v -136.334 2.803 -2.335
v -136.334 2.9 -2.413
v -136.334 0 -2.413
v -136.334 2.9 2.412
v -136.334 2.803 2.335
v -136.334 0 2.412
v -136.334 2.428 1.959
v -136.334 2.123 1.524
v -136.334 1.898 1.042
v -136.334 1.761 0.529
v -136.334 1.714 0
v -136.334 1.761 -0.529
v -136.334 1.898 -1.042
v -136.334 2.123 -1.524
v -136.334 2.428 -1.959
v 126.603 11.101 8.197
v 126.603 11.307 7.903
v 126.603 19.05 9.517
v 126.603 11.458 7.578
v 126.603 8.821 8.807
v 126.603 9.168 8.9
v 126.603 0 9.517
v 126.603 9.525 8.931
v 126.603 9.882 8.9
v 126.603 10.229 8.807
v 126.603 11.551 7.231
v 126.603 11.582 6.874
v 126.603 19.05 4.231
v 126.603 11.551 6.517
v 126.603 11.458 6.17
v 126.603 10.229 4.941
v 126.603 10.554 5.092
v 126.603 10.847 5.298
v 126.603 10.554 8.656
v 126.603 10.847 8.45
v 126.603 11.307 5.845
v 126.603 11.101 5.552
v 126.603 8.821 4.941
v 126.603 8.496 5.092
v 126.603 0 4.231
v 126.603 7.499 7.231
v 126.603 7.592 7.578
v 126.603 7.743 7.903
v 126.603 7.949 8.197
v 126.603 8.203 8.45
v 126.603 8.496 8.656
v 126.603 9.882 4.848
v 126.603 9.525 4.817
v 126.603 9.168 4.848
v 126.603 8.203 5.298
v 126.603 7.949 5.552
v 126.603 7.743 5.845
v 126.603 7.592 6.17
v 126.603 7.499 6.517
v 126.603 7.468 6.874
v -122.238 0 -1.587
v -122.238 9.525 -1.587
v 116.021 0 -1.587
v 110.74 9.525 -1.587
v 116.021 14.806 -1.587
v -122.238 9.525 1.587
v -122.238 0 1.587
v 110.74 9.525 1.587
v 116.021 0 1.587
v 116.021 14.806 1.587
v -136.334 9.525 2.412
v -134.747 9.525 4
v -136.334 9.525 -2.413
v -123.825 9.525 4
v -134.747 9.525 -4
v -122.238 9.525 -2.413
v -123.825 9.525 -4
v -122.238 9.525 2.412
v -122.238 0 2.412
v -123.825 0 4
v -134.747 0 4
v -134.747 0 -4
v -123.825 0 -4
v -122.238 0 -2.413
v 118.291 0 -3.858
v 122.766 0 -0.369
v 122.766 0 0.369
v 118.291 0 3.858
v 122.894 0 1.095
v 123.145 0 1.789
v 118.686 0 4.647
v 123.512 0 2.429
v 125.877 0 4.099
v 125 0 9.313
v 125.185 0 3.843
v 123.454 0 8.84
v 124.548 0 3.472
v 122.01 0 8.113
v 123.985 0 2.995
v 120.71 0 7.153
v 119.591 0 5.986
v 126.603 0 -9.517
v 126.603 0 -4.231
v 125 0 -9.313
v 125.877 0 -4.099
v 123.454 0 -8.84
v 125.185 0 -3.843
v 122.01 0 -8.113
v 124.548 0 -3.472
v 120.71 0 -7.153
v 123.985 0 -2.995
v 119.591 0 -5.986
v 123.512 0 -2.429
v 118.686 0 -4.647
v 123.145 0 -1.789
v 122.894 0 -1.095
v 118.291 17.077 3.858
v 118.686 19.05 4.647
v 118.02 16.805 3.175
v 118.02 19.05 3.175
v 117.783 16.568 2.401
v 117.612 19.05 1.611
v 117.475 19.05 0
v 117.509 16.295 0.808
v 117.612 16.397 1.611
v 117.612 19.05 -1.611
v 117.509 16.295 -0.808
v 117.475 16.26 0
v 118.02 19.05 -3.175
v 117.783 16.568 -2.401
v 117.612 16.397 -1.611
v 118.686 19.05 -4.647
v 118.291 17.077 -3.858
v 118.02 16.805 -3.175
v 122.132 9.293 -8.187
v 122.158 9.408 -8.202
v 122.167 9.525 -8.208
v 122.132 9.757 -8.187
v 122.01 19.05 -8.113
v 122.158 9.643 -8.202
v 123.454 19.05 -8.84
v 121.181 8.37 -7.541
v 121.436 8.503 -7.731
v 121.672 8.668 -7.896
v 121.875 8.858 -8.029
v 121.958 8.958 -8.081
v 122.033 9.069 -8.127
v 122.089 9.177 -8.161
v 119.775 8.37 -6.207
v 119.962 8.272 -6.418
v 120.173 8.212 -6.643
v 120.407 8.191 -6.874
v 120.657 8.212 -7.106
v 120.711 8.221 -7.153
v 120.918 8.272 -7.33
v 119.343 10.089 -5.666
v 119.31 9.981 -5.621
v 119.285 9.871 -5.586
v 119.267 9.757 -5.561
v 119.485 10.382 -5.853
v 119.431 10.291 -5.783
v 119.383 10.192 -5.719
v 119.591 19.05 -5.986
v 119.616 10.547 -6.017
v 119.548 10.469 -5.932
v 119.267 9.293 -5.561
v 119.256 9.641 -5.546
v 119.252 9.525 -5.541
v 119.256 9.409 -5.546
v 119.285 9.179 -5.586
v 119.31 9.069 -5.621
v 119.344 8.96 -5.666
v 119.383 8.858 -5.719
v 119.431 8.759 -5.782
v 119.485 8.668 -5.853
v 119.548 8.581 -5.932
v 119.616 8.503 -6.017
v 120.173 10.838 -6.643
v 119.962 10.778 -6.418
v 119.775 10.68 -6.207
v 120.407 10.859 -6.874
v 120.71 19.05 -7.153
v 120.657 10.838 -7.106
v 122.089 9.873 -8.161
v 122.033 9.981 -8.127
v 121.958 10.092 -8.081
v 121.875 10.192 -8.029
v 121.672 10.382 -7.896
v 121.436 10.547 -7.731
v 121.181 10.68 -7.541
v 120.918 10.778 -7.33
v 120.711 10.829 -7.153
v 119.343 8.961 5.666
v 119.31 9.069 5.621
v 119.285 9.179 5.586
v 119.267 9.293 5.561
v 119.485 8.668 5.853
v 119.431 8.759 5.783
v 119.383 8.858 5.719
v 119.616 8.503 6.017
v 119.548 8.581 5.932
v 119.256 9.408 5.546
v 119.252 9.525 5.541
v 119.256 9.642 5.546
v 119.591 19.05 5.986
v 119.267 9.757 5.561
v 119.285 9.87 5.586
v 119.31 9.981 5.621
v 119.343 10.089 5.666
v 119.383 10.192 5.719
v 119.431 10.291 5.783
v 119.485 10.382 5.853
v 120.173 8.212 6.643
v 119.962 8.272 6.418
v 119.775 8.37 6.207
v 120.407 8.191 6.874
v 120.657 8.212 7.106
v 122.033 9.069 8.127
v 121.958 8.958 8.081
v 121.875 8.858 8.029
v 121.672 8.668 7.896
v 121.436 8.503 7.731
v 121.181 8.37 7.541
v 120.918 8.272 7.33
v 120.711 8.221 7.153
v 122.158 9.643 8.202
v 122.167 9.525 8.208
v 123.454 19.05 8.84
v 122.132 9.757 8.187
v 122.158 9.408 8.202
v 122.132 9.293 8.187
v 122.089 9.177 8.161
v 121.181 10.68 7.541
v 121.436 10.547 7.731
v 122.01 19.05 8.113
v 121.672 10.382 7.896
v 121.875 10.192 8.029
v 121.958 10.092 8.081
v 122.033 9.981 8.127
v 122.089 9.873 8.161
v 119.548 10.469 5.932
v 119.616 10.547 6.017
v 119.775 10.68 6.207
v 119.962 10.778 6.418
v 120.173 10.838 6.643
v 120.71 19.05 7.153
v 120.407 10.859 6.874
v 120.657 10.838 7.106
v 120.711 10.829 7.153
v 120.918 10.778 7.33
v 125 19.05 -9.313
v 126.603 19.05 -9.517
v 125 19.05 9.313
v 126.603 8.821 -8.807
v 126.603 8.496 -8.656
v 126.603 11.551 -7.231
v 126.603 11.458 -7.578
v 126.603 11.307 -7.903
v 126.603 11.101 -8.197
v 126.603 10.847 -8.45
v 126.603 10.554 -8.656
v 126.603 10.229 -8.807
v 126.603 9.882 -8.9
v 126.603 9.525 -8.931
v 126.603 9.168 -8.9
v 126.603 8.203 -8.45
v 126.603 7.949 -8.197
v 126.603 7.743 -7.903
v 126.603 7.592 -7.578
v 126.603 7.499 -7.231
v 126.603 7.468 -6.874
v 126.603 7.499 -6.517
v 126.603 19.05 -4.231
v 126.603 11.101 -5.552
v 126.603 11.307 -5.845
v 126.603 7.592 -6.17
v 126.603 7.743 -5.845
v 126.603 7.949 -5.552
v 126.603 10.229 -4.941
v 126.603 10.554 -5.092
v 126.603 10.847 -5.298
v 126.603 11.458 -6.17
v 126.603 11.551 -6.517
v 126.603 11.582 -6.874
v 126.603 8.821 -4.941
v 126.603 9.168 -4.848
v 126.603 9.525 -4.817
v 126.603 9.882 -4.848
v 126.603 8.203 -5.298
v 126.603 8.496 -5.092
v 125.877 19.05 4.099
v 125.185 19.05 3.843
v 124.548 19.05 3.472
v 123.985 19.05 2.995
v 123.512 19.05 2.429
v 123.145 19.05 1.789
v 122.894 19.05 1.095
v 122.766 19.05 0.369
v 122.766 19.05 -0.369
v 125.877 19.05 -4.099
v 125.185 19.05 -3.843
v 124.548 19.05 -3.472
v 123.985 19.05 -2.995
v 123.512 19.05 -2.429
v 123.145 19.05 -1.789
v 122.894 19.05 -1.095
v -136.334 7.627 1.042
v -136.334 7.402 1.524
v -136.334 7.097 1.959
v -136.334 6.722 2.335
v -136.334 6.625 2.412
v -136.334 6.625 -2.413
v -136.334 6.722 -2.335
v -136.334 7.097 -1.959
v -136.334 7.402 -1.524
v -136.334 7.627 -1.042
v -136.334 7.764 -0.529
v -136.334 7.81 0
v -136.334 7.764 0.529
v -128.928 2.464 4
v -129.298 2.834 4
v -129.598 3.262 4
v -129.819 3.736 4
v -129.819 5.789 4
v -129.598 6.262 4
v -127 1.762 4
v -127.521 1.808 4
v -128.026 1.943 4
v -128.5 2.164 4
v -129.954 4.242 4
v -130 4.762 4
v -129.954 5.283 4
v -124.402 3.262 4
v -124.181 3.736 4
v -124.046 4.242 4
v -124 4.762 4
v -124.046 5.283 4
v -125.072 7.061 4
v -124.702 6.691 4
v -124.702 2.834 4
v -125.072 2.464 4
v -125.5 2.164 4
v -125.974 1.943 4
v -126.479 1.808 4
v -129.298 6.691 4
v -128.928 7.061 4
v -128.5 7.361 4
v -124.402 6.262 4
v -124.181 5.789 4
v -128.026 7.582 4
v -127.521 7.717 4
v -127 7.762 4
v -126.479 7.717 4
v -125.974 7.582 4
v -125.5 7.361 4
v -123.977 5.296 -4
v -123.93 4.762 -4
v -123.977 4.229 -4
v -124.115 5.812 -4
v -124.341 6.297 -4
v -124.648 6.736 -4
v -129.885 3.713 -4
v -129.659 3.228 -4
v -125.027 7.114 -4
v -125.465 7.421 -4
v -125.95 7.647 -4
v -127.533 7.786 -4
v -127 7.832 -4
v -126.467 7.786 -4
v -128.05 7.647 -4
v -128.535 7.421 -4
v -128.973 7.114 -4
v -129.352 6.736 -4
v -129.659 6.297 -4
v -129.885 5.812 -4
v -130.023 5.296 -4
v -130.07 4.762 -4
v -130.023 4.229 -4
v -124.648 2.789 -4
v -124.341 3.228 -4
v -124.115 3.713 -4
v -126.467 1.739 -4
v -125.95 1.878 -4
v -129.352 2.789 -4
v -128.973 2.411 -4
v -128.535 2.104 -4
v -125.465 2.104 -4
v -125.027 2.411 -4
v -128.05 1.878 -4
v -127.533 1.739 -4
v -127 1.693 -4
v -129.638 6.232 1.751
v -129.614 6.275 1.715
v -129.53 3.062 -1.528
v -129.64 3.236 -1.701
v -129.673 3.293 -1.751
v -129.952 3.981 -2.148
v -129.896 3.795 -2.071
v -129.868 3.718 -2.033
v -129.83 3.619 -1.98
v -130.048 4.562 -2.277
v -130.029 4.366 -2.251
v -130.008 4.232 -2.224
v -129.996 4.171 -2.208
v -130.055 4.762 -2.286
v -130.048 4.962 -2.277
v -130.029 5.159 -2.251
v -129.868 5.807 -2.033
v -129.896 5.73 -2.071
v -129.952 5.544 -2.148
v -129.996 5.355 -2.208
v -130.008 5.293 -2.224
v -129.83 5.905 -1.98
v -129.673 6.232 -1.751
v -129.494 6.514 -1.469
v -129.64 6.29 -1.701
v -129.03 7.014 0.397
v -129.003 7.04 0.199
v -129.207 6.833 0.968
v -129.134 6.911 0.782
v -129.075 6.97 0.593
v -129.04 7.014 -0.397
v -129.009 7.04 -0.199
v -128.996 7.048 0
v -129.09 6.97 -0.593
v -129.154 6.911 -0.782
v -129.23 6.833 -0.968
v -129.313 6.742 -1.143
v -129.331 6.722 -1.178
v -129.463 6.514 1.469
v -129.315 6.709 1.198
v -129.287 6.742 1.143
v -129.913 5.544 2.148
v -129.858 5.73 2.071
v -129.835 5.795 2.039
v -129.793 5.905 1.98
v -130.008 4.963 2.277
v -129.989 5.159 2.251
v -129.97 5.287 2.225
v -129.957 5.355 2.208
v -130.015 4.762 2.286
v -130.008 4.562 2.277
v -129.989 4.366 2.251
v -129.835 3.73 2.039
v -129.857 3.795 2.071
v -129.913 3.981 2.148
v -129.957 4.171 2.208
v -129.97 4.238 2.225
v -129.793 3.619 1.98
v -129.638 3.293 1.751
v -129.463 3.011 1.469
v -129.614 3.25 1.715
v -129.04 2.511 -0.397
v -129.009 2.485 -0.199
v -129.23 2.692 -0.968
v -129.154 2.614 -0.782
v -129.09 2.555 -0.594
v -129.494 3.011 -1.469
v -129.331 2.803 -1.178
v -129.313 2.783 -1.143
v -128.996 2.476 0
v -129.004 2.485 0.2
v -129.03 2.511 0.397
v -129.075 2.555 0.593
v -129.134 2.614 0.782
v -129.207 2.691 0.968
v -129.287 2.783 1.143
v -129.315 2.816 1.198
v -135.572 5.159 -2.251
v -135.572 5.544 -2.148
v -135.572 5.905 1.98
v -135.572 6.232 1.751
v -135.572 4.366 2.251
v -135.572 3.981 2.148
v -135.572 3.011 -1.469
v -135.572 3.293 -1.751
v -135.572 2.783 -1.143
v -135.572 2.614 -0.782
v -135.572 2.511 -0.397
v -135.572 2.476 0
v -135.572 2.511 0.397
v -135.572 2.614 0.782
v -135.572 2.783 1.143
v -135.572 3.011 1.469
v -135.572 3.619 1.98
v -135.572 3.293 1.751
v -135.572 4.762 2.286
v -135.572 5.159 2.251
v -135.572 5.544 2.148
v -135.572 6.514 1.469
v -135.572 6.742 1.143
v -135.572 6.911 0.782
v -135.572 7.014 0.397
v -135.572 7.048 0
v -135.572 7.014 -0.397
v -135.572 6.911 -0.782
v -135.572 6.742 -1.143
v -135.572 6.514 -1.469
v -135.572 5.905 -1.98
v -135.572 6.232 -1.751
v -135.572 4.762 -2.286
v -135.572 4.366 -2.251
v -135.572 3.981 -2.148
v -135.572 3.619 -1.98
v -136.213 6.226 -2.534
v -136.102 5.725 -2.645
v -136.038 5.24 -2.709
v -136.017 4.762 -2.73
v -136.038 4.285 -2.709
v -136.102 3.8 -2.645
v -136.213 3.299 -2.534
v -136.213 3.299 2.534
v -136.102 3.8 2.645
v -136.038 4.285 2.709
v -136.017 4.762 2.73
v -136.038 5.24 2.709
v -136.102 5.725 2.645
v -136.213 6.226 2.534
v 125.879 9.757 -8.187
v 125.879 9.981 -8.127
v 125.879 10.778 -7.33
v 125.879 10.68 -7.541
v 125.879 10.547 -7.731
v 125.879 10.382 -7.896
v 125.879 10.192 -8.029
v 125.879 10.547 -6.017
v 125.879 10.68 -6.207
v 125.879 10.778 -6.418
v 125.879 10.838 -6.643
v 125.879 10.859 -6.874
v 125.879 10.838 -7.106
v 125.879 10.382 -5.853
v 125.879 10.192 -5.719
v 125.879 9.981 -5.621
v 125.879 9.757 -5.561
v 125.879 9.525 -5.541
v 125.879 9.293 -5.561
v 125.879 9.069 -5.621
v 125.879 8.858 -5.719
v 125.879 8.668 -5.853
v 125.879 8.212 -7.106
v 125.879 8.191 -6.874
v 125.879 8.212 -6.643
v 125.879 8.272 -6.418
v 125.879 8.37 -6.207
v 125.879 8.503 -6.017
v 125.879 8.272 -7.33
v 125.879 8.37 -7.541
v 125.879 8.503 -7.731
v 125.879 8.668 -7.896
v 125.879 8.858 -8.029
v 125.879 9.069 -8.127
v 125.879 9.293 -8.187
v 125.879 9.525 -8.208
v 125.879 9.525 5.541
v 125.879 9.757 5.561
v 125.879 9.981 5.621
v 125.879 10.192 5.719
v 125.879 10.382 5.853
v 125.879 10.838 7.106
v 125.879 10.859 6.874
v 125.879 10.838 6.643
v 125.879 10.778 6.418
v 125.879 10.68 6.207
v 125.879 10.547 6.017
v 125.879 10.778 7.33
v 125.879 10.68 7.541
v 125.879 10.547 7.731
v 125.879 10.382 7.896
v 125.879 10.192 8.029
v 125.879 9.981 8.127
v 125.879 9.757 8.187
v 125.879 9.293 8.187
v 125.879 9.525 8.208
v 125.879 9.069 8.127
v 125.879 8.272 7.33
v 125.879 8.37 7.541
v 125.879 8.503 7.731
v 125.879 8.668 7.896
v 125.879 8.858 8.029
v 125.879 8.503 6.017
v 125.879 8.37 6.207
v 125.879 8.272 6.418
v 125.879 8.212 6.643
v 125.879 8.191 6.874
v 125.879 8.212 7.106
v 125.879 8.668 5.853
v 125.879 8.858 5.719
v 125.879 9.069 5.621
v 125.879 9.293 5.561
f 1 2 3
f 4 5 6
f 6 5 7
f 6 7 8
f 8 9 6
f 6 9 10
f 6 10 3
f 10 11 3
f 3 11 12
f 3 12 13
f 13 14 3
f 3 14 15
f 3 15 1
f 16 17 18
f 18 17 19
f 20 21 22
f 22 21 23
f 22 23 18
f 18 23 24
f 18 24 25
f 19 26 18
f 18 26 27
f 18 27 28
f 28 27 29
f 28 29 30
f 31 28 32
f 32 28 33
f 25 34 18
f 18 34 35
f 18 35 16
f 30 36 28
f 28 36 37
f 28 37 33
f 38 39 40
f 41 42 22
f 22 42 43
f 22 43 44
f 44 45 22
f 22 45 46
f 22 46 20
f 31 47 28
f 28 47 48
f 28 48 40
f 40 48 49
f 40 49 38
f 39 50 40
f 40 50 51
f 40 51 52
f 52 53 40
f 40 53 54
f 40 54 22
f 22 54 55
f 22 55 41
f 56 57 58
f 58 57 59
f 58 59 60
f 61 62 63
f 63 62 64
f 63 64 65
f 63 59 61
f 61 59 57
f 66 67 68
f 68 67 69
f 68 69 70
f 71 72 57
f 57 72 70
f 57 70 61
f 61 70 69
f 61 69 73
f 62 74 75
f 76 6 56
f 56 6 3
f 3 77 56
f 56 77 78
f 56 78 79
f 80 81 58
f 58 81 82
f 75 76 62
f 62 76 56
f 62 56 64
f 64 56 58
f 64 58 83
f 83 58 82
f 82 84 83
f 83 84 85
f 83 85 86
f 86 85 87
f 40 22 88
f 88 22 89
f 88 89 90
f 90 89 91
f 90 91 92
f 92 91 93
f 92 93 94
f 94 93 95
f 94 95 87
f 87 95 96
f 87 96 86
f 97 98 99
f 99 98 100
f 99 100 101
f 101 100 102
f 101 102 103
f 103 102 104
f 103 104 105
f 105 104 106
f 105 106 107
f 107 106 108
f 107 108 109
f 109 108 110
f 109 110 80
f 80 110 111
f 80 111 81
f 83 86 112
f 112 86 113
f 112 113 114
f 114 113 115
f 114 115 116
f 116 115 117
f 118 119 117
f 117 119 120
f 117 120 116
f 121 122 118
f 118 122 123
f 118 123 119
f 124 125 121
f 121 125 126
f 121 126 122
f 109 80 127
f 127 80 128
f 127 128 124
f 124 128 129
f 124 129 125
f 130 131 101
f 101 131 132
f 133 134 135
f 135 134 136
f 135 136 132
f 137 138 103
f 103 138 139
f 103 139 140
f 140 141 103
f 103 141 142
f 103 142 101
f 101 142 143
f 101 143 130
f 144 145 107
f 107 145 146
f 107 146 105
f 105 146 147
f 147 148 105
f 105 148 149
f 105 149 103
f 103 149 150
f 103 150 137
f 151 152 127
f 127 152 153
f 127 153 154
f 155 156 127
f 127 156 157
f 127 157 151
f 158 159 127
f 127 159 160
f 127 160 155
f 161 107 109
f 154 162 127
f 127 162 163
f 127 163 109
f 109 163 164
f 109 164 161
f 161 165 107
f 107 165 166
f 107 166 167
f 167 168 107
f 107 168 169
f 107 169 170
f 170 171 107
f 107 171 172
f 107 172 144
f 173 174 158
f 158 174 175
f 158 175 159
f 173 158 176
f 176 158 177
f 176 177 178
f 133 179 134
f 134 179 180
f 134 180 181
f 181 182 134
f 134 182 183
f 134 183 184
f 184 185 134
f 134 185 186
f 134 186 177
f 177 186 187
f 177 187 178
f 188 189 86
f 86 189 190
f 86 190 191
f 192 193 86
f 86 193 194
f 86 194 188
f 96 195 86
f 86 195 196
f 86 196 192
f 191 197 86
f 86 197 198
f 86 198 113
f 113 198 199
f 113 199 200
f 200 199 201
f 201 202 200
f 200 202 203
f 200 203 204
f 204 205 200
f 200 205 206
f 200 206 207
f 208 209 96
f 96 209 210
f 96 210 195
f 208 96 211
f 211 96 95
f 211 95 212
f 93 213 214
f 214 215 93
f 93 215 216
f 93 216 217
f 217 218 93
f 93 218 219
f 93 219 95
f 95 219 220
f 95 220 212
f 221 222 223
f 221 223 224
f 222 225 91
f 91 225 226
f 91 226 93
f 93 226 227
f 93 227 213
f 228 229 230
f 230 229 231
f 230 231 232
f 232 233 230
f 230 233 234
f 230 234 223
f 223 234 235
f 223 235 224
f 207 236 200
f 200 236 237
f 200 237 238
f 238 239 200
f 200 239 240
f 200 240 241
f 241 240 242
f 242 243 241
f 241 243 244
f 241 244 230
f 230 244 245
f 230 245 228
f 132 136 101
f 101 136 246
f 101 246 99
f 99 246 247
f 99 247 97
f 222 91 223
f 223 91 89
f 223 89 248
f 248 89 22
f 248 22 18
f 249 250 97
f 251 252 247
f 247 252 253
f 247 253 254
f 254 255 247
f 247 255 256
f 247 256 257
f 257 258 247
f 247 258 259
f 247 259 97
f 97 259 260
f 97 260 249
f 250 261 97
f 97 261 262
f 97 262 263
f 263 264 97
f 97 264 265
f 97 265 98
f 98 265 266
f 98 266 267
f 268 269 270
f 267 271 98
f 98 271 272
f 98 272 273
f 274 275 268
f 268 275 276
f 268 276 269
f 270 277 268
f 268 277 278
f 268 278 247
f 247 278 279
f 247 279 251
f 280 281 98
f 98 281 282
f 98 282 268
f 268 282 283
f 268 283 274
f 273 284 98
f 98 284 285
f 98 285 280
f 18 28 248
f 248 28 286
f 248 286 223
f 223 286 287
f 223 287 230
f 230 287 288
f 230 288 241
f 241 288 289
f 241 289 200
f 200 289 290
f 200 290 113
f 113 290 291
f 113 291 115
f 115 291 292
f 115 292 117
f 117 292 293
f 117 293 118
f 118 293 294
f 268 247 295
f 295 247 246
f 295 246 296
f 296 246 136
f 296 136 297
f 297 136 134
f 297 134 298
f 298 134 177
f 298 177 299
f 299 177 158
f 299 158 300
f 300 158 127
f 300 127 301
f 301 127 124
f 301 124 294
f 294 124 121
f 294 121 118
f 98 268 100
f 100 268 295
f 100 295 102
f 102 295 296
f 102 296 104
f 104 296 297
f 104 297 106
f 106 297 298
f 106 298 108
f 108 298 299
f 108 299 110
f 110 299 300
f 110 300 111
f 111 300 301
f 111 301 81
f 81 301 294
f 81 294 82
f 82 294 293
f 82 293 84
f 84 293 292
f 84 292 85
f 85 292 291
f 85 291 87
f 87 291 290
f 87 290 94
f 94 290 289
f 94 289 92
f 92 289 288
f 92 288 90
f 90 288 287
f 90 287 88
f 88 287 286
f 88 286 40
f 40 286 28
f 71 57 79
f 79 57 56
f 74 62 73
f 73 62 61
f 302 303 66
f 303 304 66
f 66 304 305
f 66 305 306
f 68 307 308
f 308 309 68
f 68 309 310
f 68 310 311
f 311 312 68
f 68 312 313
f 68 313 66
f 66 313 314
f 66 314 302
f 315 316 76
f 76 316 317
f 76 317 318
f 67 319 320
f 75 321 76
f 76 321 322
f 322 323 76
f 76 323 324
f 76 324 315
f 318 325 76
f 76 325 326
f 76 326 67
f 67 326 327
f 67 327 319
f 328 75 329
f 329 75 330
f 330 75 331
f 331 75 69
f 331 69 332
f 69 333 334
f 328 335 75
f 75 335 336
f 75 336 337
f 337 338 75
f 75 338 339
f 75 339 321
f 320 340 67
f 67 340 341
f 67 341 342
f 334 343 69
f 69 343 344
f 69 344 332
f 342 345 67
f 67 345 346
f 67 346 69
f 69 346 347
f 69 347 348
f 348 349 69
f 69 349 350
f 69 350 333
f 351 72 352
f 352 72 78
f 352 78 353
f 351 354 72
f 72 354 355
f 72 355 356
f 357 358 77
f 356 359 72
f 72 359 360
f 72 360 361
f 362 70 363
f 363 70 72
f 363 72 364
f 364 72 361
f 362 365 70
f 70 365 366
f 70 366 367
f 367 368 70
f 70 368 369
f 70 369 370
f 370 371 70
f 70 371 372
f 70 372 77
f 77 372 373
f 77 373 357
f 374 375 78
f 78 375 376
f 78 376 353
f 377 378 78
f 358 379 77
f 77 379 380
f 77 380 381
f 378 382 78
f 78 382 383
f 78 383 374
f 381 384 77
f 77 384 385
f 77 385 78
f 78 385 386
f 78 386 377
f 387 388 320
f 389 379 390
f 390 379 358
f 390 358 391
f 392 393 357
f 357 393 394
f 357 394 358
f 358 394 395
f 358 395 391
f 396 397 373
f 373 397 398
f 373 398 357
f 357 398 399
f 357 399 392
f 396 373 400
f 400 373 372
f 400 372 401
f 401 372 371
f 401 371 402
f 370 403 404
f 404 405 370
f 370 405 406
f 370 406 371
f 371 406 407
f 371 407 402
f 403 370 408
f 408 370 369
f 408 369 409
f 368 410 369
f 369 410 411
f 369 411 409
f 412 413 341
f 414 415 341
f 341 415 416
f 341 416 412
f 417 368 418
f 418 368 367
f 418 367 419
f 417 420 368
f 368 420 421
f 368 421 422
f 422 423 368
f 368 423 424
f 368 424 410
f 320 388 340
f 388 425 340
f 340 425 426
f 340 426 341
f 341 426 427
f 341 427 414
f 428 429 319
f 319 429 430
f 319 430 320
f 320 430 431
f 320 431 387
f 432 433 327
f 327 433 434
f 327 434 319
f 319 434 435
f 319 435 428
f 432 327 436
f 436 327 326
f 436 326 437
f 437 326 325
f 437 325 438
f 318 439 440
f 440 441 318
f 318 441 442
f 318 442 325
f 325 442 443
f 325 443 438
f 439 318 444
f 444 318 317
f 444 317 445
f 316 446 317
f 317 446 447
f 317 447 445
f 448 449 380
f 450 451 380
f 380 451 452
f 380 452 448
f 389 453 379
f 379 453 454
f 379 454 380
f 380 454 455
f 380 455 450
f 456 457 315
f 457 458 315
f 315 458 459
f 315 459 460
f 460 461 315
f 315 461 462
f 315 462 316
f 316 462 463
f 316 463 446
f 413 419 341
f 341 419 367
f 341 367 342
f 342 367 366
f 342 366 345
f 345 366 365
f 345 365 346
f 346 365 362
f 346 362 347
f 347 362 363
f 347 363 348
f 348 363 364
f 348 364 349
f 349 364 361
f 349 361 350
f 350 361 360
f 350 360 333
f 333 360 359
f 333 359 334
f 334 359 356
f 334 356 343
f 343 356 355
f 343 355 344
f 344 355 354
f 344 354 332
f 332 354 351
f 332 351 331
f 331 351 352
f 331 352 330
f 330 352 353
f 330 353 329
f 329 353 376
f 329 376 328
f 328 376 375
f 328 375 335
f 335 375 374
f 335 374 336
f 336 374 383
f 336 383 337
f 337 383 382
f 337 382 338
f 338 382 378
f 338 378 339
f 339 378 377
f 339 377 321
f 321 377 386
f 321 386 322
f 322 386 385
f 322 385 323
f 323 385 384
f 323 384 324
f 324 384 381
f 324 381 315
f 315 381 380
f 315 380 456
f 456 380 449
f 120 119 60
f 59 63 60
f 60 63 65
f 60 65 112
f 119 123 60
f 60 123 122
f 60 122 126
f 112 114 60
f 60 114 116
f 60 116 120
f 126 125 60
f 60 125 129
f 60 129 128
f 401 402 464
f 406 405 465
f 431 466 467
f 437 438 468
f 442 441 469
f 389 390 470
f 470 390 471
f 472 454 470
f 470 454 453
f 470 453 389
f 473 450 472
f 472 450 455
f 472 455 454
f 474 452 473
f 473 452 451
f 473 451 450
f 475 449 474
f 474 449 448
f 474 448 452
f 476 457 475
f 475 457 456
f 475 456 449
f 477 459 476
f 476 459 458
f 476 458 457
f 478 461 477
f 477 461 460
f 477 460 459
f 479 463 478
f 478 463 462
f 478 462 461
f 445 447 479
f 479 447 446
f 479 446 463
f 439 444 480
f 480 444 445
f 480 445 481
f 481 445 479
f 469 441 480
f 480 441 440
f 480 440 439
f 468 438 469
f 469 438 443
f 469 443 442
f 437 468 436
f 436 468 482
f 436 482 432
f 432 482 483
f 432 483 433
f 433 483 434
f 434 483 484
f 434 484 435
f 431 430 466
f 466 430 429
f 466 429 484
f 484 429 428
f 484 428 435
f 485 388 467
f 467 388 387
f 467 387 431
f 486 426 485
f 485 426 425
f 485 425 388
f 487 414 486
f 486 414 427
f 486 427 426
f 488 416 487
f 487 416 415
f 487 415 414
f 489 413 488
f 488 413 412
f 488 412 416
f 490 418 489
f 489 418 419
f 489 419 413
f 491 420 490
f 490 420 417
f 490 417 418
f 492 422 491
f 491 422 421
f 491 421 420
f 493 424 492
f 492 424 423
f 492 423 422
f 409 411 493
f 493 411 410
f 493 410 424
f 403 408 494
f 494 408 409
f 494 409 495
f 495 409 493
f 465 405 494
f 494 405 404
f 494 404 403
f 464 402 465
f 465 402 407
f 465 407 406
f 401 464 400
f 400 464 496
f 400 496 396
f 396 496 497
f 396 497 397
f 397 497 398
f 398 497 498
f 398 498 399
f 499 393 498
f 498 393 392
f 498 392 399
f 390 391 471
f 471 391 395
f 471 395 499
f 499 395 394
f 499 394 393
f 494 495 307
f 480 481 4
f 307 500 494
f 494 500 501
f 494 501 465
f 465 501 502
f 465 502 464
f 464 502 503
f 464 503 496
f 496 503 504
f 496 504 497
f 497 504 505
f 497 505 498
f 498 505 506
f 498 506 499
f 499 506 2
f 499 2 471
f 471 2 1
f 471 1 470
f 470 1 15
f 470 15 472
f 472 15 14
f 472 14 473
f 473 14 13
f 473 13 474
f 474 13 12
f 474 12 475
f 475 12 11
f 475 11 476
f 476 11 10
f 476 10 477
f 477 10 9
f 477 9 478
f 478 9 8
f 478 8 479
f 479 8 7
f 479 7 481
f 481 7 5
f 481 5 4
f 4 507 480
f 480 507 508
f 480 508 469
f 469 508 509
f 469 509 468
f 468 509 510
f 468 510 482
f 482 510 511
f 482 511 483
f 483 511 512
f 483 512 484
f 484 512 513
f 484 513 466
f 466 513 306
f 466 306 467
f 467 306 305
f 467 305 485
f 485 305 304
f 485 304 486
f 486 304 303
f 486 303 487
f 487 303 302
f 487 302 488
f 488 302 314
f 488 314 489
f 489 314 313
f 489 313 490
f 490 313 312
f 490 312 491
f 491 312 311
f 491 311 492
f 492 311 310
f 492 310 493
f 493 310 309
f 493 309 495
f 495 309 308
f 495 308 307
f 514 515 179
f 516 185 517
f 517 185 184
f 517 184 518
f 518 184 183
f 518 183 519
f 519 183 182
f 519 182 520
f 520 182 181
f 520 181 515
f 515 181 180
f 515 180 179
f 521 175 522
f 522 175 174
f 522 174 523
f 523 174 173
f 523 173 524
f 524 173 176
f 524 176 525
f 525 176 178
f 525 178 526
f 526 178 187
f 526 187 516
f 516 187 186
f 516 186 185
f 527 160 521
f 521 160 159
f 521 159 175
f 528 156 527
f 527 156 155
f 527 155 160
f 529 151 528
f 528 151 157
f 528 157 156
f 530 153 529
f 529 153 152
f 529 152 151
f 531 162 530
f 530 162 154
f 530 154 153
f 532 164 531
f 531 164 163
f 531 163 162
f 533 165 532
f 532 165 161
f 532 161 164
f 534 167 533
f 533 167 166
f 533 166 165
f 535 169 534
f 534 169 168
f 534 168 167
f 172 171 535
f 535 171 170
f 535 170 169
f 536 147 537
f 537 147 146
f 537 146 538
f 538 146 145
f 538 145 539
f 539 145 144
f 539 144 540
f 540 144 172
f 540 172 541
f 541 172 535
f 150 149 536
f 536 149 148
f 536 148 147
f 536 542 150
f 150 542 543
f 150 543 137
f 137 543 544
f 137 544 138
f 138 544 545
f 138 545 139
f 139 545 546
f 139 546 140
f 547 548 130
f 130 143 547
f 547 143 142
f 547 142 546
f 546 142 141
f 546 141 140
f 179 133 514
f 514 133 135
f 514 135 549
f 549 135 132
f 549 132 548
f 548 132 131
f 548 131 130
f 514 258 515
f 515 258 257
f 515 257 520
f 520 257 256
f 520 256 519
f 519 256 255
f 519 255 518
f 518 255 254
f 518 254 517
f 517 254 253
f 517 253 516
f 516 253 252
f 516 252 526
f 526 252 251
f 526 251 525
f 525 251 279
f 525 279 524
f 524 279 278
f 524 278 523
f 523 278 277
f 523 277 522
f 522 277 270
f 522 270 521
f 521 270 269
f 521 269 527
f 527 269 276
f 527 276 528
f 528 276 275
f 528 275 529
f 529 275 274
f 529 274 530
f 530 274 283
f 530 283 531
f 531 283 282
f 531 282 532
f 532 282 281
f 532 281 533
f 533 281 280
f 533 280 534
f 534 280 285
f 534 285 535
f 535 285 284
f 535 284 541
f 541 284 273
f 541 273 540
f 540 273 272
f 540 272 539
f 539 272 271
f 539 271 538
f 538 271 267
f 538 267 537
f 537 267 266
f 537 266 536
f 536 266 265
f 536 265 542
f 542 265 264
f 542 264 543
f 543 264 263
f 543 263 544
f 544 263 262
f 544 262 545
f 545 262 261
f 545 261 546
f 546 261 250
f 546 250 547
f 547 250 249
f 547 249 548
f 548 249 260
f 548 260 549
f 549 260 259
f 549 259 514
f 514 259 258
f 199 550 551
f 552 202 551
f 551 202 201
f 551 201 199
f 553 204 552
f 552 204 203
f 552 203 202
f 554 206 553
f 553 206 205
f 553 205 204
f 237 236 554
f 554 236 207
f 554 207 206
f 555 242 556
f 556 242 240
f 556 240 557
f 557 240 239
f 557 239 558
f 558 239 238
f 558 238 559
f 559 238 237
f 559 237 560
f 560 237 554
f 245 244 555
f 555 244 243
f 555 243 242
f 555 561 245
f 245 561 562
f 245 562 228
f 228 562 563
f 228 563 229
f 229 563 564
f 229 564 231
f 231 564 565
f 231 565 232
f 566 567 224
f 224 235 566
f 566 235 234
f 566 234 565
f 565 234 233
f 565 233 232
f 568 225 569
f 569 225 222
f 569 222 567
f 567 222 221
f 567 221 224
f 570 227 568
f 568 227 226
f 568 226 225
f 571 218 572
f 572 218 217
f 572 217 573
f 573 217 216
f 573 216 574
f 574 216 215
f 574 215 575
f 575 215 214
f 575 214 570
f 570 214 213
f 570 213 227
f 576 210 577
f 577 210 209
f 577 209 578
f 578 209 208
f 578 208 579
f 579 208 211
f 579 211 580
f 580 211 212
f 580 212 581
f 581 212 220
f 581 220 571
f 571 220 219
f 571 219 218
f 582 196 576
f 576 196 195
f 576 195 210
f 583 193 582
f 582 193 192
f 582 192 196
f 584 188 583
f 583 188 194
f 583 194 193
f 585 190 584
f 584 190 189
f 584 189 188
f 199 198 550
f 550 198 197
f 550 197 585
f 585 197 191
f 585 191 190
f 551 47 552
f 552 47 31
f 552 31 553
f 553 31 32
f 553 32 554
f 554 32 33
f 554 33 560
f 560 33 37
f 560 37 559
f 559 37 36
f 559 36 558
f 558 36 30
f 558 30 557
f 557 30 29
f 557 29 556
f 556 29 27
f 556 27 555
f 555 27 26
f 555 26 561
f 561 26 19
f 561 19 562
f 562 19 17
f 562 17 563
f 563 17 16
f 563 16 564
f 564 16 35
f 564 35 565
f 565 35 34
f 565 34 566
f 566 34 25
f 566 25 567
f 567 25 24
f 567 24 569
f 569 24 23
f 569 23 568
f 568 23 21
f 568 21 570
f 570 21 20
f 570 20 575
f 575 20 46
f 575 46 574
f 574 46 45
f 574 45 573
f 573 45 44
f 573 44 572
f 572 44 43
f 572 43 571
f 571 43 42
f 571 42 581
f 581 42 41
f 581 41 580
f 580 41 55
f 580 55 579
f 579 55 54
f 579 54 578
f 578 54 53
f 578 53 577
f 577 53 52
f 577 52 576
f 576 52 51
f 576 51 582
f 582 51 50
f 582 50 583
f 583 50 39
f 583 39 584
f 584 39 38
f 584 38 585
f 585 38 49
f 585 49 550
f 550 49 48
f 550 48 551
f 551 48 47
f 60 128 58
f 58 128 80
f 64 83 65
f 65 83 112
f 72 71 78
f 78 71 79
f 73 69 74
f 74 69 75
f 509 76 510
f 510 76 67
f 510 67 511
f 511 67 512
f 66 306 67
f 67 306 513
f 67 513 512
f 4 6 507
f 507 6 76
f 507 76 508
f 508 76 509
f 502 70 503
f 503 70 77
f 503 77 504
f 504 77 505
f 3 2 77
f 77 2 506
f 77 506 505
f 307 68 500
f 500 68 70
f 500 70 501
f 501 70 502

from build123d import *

# Parameters (mm, degrees)
SKETCH1_W                        = 254
SKETCH1_H                        = 3.175
BOSS_EXTRUDE1_DEPTH              = 9.525
BOSS_EXTRUDE2_DEPTH              = 19.05
SKETCH3_R                        = 4.25
CUT_EXTRUDE1_DEPTH               = 129.772942093
SKETCH4_W                        = 9.525
SKETCH4_H                        = 9.525
BOSS_EXTRUDE3_DEPTH              = 4
SKETCH5_R                        = 3
CUT_EXTRUDE2_DEPTH               = 134.81689298
CUT_EXTRUDE2_DRAFT               = 0.5
RIB1_REACH                       = 135.472
SKETCH7_WALL_W                   = 278.469391374
SKETCH7_WALL_H                   = 3.175
MOVE_FACE1_BY                    = 4.572
F_10_24_TAPPED_HOLE1_D           = 4.572
F_10_24_TAPPED_HOLE1_DEPTH       = 9.3335
F_10_24_TAPPED_HOLE1_CSINK_D     = 6.096
F_10_24_TAPPED_HOLE1_CSINK_ANGLE = 90
F_10_24_TAPPED_HOLE1_TIP         = 1.373567375
F_4_40_TAPPED_HOLE1_D            = 2.667
F_4_40_TAPPED_HOLE1_DEPTH        = 9.129125
F_4_40_TAPPED_HOLE1_CSINK_D      = 4.1148
F_4_40_TAPPED_HOLE1_CSINK_ANGLE  = 90
F_4_40_TAPPED_HOLE1_TIP          = 0.801247635
CHAMFER1_SIZE                    = 1.5875


with BuildPart() as part:
    # Sketch1 → Boss-Extrude1 (new body)
    with BuildSketch(Plane(origin=(0, 0, 0), x_dir=(1, 0, 0), z_dir=(0, 1, 0))):
        Rectangle(SKETCH1_W, SKETCH1_H)
    extrude(amount=BOSS_EXTRUDE1_DEPTH)

    # Sketch2 → Boss-Extrude2 (add)
    with BuildSketch(Plane(origin=(0, 0, 0), x_dir=(1, 0, 0), z_dir=(0, 1, 0))):
        with BuildLine():
            Line((126.603125, 9.516728179), (126.603125, -9.516728179))
            ThreePointArc((126.603125, -9.516728179), (117.475, 0), (126.603125, 9.516728179))
        make_face()
    extrude(amount=BOSS_EXTRUDE2_DEPTH)

    # Sketch3 → Cut-Extrude1 (cut, through all)
    with BuildSketch(Plane(origin=(0, 19.05, 0), x_dir=(1, 0, 0), z_dir=(0, 1, 0))):
        with Locations((127, 0)):
            Circle(SKETCH3_R)
    extrude(amount=-CUT_EXTRUDE1_DEPTH, mode=Mode.SUBTRACT)

    # Sketch4 → Boss-Extrude3 (add, symmetric)
    with BuildSketch(Plane.XY):
        with Locations((-127, 4.7625)):
            Rectangle(SKETCH4_W, SKETCH4_H)
    extrude(amount=BOSS_EXTRUDE3_DEPTH, both=True)


with BuildPart() as cut_extrude2_tool:
    # Sketch5 → Cut-Extrude2 (with draft: the straight prism first)
    with BuildSketch(Plane.XY.offset(4)):
        with Locations((-127, 4.7625)):
            Circle(SKETCH5_R)
    extrude(amount=-CUT_EXTRUDE2_DEPTH)
    # Cut-Extrude2: the draft: its side faces are tilted about the plane it starts from
    cut_extrude2_sides = [cut_extrude2_tool.faces().sort_by_distance(p)[0] for p in [
        (-130, 4.7625, -63.40844649),
    ]]
    draft(cut_extrude2_sides, Plane.XY.offset(4), CUT_EXTRUDE2_DRAFT)


with BuildPart() as part_1:
    add(part.part)

    # Cut-Extrude2: cut by cut_extrude2_tool
    add(cut_extrude2_tool.part, mode=Mode.SUBTRACT)

    # Sketch7 wall → Rib1 (add, up to next)
    with BuildSketch(Plane(origin=(114.107403955, 12.892596045, 0), x_dir=(0.707106781187, 0.707106781187, 0), z_dir=(-0.707106781187, 0.707106781187, 0)), mode=Mode.PRIVATE) as rib1_sk1:
        Rectangle(SKETCH7_WALL_W, SKETCH7_WALL_H)
    rib1_tool1 = extrude(rib1_sk1.sketch, amount=-RIB1_REACH, mode=Mode.PRIVATE) - part_1.part
    add(rib1_tool1.solids().sort_by_distance((114.107403955, 12.892596045, 0))[0])

    # Move Face1: a face moved outward by 4.572
    extrude(part_1.faces().sort_by_distance((-131.7625, 4.7625, 0))[0], amount=MOVE_FACE1_BY, dir=(-1, 0, 0))

    # #10-24 Tapped Hole1
    with Locations(Plane.ZY.offset(136.3345)):
        with Locations((0, 4.7625)):
            CounterSinkHole(F_10_24_TAPPED_HOLE1_D / 2, F_10_24_TAPPED_HOLE1_CSINK_D / 2, depth=F_10_24_TAPPED_HOLE1_DEPTH, counter_sink_angle=F_10_24_TAPPED_HOLE1_CSINK_ANGLE)
            with Locations((0, 0, -(F_10_24_TAPPED_HOLE1_DEPTH + F_10_24_TAPPED_HOLE1_TIP / 2))):  # 118° drill point
                Cone(0, F_10_24_TAPPED_HOLE1_D / 2, F_10_24_TAPPED_HOLE1_TIP, mode=Mode.SUBTRACT)

    # #4-40 Tapped Hole1
    with Locations(Plane(origin=(126.603125, 0, 0), x_dir=(0, 0, -1), z_dir=(1, 0, 0))):
        with Locations((-6.874078522, 9.525), (6.874078522, 9.525)):
            CounterSinkHole(F_4_40_TAPPED_HOLE1_D / 2, F_4_40_TAPPED_HOLE1_CSINK_D / 2, depth=F_4_40_TAPPED_HOLE1_DEPTH, counter_sink_angle=F_4_40_TAPPED_HOLE1_CSINK_ANGLE)
            with Locations((0, 0, -(F_4_40_TAPPED_HOLE1_DEPTH + F_4_40_TAPPED_HOLE1_TIP / 2))):  # 118° drill point
                Cone(0, F_4_40_TAPPED_HOLE1_D / 2, F_4_40_TAPPED_HOLE1_TIP, mode=Mode.SUBTRACT)

    # Chamfer1
    # the kernel refuses this chamfer: 1.93751941, 1.5875 mm, written as the material it adds along each edge
    with BuildSketch(Plane(origin=(117.608223344, 0, -1.5875), x_dir=(-1, 0, 0), z_dir=(0, 1, 0))) as chamfer1_piece_1_section:
        with BuildLine():
            Line((CHAMFER1_SIZE, 0), (-0.683137079, -2.270637079))
            ThreePointArc((-0.683137079, -2.270637079), (-0.280625297, -1.189647084), (0, 0))
            Line((0, 0), (CHAMFER1_SIZE, 0))
        make_face()
    chamfer1_piece_1 = extrude(amount=22.492706814, mode=Mode.PRIVATE)
    chamfer1_piece_1 = split(chamfer1_piece_1, bisect_by=Plane(origin=(109.411515627, 8.196707717, -1.5875), z_dir=(0.7071067811865476, -0.7071067811865476, 0)), keep=Keep.TOP, mode=Mode.PRIVATE)
    add(chamfer1_piece_1)
    with BuildSketch(Plane(origin=(117.608223344, 22.492706814, 1.5875), x_dir=(-1, 0, 0), z_dir=(0, -1, 0))) as chamfer1_piece_2_section:
        with BuildLine():
            Line((CHAMFER1_SIZE, 0), (-0.683137079, -2.270637079))
            ThreePointArc((-0.683137079, -2.270637079), (-0.280625297, -1.189647084), (0, 0))
            Line((0, 0), (CHAMFER1_SIZE, 0))
        make_face()
    chamfer1_piece_2 = extrude(amount=22.492706814, mode=Mode.PRIVATE)
    chamfer1_piece_2 = split(chamfer1_piece_2, bisect_by=Plane(origin=(120.657869034, 19.443061124, 1.5875), z_dir=(0.7071067811865476, -0.7071067811865476, 0)), keep=Keep.TOP, mode=Mode.PRIVATE)
    add(chamfer1_piece_2)
    # the kernel refuses this chamfer: 1.93751941, 1.5875 mm, written as the material it takes off along each edge
    with BuildSketch(Plane(origin=(-122.2375, -4.082546743, -4), x_dir=(0, 0, 1), z_dir=(0, 1, 0)), Plane(origin=(-122.2375, -4.082546743, 4), x_dir=(-1, 0, 0), z_dir=(0, 1, 0))) as chamfer1_2_piece_1:
        Polygon((CHAMFER1_SIZE, 0), (0, -CHAMFER1_SIZE), (0, 0), align=None)
    extrude(amount=17.690093487, mode=Mode.SUBTRACT)
    with BuildSketch(Plane(origin=(-136.3345, 13.607546743, -4), x_dir=(1, 0, 0), z_dir=(0, -1, 0)), Plane(origin=(-136.3345, 13.607546743, 4), x_dir=(0, 0, -1), z_dir=(0, -1, 0))) as chamfer1_2_piece_2:
        Polygon((CHAMFER1_SIZE, 0), (0, CHAMFER1_SIZE), (0, 0), align=None)
    extrude(amount=17.690093487, mode=Mode.SUBTRACT)


solid = part_1.part
